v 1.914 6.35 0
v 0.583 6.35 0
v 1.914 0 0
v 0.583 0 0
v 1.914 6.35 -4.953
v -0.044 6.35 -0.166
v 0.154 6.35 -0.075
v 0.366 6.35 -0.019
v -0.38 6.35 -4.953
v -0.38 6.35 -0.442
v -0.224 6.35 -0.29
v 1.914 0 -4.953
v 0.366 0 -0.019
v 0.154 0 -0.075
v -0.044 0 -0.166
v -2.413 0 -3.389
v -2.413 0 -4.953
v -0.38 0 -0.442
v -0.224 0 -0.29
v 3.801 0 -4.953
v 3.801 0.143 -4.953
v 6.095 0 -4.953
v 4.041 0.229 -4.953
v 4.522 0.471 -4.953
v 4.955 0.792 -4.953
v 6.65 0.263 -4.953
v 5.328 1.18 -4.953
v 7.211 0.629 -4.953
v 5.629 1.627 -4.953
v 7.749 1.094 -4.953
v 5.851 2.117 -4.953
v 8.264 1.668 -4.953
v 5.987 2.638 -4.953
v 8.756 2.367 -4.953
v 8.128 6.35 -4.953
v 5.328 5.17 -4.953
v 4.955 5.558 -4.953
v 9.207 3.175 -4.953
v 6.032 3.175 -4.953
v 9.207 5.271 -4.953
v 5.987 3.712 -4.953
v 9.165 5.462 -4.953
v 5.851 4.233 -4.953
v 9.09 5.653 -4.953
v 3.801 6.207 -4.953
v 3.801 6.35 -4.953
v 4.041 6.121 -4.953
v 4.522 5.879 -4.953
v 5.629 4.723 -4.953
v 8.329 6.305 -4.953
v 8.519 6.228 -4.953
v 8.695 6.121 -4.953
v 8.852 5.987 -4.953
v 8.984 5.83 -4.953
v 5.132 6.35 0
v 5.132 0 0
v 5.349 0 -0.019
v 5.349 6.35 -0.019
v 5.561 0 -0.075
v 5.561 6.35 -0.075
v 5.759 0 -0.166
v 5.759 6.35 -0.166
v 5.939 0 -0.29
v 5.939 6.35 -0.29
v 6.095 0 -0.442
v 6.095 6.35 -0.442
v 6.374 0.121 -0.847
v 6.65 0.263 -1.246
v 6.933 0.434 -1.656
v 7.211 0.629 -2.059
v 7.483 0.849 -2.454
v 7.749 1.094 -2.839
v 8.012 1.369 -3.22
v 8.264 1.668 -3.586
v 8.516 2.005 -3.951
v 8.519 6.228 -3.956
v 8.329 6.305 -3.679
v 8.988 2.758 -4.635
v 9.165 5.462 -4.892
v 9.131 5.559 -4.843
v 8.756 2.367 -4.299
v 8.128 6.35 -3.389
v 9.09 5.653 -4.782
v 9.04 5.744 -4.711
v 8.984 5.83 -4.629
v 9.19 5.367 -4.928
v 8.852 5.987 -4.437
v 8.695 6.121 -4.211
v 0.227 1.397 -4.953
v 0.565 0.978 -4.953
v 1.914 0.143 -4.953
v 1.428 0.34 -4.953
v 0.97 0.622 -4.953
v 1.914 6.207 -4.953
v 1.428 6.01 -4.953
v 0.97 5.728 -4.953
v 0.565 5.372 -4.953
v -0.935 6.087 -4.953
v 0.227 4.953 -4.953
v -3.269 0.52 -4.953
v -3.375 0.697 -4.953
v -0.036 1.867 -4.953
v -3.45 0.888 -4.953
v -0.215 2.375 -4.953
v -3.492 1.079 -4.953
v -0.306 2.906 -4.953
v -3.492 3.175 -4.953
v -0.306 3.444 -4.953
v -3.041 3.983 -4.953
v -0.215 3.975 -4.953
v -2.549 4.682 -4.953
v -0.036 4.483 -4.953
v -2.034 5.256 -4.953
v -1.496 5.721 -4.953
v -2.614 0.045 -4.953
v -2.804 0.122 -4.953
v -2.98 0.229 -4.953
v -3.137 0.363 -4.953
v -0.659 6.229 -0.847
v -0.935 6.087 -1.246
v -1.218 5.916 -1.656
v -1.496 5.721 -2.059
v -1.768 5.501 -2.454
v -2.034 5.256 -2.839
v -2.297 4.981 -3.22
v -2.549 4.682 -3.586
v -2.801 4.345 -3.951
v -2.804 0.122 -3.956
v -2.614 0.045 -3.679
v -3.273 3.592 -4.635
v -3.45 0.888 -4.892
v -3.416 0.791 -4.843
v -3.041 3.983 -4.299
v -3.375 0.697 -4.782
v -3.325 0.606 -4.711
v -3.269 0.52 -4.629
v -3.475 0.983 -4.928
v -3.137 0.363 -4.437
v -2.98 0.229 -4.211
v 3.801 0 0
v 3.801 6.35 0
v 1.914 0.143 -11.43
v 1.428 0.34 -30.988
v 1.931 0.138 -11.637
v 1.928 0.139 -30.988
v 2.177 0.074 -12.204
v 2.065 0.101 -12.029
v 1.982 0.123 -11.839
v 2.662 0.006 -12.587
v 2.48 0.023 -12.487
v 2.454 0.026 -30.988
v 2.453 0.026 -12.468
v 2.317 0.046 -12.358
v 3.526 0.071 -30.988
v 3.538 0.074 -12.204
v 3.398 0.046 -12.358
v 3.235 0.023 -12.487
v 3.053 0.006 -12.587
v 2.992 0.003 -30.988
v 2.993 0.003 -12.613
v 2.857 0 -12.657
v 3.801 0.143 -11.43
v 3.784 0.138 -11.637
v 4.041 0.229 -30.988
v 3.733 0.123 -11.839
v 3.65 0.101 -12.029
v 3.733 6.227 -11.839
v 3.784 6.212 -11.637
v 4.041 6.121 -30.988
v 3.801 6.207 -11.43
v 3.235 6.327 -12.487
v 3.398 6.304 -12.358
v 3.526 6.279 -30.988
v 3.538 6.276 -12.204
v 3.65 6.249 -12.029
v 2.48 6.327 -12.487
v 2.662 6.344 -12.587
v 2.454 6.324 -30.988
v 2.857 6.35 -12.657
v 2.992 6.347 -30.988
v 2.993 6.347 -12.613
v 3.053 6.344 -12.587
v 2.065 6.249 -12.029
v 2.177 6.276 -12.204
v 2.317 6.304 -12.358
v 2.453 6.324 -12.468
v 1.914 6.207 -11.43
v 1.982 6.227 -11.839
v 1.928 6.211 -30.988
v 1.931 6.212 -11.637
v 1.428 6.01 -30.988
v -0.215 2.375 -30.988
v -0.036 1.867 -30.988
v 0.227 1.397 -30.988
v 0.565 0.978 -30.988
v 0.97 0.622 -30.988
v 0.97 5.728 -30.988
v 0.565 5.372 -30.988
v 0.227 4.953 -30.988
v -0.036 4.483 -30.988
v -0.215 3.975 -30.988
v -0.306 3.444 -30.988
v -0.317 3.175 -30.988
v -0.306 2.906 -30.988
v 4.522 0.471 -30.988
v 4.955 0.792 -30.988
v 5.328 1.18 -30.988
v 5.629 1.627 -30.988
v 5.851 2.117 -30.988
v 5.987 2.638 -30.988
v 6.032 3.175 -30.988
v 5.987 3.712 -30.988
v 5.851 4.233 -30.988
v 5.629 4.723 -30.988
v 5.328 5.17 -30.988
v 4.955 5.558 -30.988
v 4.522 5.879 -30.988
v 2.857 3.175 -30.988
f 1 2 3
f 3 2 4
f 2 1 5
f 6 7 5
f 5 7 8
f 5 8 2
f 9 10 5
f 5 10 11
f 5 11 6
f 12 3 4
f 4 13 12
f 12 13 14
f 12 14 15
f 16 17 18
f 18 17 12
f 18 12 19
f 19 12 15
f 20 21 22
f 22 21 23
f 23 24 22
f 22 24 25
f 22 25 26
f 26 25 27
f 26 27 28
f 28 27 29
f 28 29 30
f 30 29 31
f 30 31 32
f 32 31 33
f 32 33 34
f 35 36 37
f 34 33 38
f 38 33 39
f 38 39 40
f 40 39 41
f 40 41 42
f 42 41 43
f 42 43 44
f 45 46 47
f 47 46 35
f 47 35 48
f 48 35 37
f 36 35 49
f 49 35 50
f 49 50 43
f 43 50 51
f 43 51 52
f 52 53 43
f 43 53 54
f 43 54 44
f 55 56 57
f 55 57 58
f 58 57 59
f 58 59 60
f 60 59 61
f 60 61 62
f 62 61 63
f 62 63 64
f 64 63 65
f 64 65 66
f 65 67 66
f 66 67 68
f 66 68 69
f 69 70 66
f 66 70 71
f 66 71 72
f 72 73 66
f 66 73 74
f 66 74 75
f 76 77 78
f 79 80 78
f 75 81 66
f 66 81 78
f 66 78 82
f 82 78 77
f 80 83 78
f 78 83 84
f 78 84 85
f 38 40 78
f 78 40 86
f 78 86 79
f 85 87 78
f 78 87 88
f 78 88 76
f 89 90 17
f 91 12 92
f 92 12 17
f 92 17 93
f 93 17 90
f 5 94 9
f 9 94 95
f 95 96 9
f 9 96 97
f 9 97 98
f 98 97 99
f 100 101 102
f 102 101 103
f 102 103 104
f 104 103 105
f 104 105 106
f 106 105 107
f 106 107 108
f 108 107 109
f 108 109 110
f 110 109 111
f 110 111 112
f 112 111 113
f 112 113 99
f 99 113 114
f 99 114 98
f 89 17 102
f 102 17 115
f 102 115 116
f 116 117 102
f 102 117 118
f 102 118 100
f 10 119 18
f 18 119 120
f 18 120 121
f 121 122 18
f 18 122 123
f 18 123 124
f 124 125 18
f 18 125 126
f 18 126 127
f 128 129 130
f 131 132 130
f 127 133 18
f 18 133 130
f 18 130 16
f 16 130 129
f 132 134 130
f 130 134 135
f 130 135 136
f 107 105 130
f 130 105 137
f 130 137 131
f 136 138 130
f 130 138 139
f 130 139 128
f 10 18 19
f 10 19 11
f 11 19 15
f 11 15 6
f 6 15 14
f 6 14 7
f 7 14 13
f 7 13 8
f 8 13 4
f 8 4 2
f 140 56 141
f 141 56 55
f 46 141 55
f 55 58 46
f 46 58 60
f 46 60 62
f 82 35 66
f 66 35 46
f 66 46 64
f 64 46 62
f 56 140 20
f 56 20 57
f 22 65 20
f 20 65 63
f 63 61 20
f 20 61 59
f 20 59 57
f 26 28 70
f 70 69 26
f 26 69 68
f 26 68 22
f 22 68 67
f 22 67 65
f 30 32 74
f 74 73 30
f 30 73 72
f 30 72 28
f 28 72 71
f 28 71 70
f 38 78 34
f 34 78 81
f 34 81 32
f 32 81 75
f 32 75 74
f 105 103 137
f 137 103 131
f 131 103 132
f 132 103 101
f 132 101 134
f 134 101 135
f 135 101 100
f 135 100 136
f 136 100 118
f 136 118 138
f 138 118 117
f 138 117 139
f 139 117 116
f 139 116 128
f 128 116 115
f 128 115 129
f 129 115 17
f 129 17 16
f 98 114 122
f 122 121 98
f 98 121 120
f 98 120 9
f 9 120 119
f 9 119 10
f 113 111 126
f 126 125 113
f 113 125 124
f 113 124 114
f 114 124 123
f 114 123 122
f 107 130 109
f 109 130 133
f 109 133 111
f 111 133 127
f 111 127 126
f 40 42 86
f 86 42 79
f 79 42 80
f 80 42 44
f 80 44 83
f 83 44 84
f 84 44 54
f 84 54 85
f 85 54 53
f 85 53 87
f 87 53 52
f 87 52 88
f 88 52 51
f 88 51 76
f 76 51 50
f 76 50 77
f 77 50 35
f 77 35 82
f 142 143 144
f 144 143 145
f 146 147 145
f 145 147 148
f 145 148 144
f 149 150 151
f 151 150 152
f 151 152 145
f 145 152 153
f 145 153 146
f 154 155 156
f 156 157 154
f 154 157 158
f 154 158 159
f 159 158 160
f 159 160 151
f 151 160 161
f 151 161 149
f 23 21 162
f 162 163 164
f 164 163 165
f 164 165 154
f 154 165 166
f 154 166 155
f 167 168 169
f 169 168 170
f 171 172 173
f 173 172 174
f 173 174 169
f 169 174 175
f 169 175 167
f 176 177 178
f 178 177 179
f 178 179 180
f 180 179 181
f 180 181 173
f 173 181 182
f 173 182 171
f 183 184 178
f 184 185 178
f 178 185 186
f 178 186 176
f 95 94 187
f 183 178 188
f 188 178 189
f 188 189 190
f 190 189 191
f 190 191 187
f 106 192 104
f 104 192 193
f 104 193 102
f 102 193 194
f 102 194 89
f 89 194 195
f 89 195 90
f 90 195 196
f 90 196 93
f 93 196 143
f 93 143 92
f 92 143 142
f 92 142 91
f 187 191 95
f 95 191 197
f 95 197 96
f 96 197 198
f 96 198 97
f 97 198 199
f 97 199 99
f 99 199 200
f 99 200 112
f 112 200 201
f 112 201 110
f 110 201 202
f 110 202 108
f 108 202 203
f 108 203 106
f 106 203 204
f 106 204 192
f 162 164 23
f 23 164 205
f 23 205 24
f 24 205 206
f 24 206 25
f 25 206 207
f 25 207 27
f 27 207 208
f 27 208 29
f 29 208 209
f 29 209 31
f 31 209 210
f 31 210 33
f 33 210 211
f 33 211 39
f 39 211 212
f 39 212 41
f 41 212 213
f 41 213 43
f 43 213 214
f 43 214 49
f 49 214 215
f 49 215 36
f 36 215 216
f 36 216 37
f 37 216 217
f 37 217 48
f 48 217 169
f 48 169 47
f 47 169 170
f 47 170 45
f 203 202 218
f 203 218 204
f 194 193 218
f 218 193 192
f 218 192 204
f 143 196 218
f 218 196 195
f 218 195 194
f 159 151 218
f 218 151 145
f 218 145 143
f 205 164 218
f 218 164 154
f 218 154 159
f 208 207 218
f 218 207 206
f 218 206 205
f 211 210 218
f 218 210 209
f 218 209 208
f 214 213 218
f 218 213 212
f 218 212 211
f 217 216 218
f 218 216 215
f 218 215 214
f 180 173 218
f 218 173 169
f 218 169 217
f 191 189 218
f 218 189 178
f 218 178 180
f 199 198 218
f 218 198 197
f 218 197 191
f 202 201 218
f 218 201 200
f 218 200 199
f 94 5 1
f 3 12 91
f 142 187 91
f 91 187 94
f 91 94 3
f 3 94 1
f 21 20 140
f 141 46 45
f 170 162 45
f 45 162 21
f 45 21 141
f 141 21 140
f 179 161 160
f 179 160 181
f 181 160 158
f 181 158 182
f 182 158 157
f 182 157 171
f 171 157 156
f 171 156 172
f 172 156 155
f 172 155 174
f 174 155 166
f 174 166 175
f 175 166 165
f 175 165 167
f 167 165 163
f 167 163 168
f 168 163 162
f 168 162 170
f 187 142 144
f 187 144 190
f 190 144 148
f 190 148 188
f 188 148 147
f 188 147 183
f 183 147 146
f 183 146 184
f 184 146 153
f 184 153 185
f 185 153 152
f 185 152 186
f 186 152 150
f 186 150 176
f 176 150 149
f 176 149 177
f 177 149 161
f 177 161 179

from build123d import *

# Parameters (mm, degrees)
BOSS_EXTRUDE1_DEPTH = 6.35
CUT_EXTRUDE3_DEPTH  = 4.953
SKETCH7_W           = 6.35
SKETCH7_H           = 6.35
CUT_EXTRUDE5_DEPTH  = 2.159
SKETCH9_R           = 3.175
BOSS_EXTRUDE4_DEPTH = 26.035
CUT_EXTRUDE6_REACH  = 34.945
SKETCH10_W          = 1.886216022
SKETCH10_H          = 12.7
FILLET1_R           = 1.27


with BuildPart() as part:
    # Sketch1 → Boss-Extrude1 (new body)
    with BuildSketch(Plane(origin=(0, 0, 0), x_dir=(1, 0, 0), z_dir=(0, 1, 0))):
        with BuildLine():
            Line((0.583306021, 0), (5.131693979, 0))
            ThreePointArc((5.131693979, 0), (5.661763503, 0.115908886), (6.095077487, 0.442478269))
            Line((6.095077487, 0.442478269), (9.2075, 4.953))
            Line((9.2075, 4.953), (6.0325, 4.953))
            Line((6.0325, 4.953), (6.0325, 7.112))
            Line((6.0325, 7.112), (-0.3175, 7.112))
            Line((-0.3175, 7.112), (-0.3175, 4.953))
            Line((-0.3175, 4.953), (-3.4925, 4.953))
            Line((-3.4925, 4.953), (-0.380077487, 0.442478269))
            ThreePointArc((-0.380077487, 0.442478269), (0.053236497, 0.115908886), (0.583306021, 0))
        make_face()
    extrude(amount=BOSS_EXTRUDE1_DEPTH)

    # Sketch5 → Cut-Extrude3 (cut)
    with BuildSketch(Plane.XY):
        with BuildLine():
            Line((-3.4925, 3.175), (-3.4925, 6.35))
            Line((-3.4925, 6.35), (-0.380077487, 6.35))
            add(Edge.make_bspline(
                [(-3.4925, 3.175), (-2.286021044, 5.595085513), (-0.380077487, 6.35)],
                knots=[0, 0, 0, 0.524463315, 0.524463315, 0.524463315], degree=2))
        make_face()
        with BuildLine():
            Line((6.095077487, 0), (9.2075, 0))
            Line((9.2075, 0), (9.2075, 3.175))
            add(Edge.make_bspline(
                [(9.2075, 3.175), (8.001021011, 0.754914499), (6.095077487, 0)],
                knots=[0, 0, 0, 0.524463308, 0.524463308, 0.524463308], degree=2))
        make_face()
        with BuildLine():
            Line((9.2075, 6.35), (9.2075, 5.2705))
            ThreePointArc((9.2075, 5.2705), (8.848057048, 5.990557048), (8.128, 6.35))
            Line((8.128, 6.35), (9.2075, 6.35))
        make_face()
        with BuildLine():
            Line((-3.4925, 0), (-2.413, 0))
            ThreePointArc((-2.413, 0), (-3.133057048, 0.359442952), (-3.4925, 1.0795))
            Line((-3.4925, 1.0795), (-3.4925, 0))
        make_face()
    extrude(amount=-CUT_EXTRUDE3_DEPTH, mode=Mode.SUBTRACT)

    # Sketch7 → Cut-Extrude5 (cut)
    with BuildSketch(Plane(origin=(0, 0, -7.112), x_dir=(-1, 0, 0), z_dir=(0, 0, -1))):
        with Locations((-2.8575, 3.175)):
            Rectangle(SKETCH7_W, SKETCH7_H)
    extrude(amount=-CUT_EXTRUDE5_DEPTH, mode=Mode.SUBTRACT)

    # Sketch9 → Boss-Extrude4 (add)
    with BuildSketch(Plane(origin=(0, 0, -4.953), x_dir=(-1, 0, 0), z_dir=(0, 0, -1))):
        with Locations(Location((-2.8575, 3.175, 0), (0, 0, 270))):
            Circle(SKETCH9_R)
    extrude(amount=BOSS_EXTRUDE4_DEPTH)

    # Cut-Extrude6: up to this face of the body (flat: up to its plane)
    cut_extrude6_end = Plane(part.part.faces().sort_by_distance((2.192673253, 0, -2.628972318))[0])
    # Sketch10 → Cut-Extrude6 (cut, up to the picked face)
    with BuildSketch(Plane(origin=(0, 6.35, 0), x_dir=(1, 0, 0), z_dir=(0, 1, 0)), mode=Mode.PRIVATE) as cut_extrude6_sk1:
        with Locations((2.8575, 6.35)):
            Rectangle(SKETCH10_W, SKETCH10_H)
    cut_extrude6_tool1 = split(extrude(cut_extrude6_sk1.sketch, amount=-CUT_EXTRUDE6_REACH, mode=Mode.PRIVATE), bisect_by=cut_extrude6_end, keep=Keep.BOTH, mode=Mode.PRIVATE)
    add(cut_extrude6_tool1.solids().sort_by(Axis((2.8575, 6.35, -6.35), (0, -1, 0)))[0], mode=Mode.SUBTRACT)

    # Fillet1
    # the kernel refuses this fillet: 1.27 mm, written as the material it adds along each edge
    with BuildSketch(Plane(origin=(1.914391989, 9.381694622, -12.7), x_dir=(1, 0, 0), z_dir=(0, -1, 0))) as fillet1_piece_1_section:
        with BuildLine():
            CenterArc((FILLET1_R, FILLET1_R), FILLET1_R, 180, 90)
            Line((0, FILLET1_R), (0, 0))
            Line((0, 0), (FILLET1_R, 0))
        make_face()
    fillet1_piece_1 = extrude(amount=12.413389243, mode=Mode.PRIVATE)
    fillet1_piece_1 = fillet1_piece_1 & Plane(origin=(2.8575, 3.175, -12.415110082), x_dir=(0, -1, 0), z_dir=(0, 0, 1)) * Cylinder(3.175, 30, mode=Mode.PRIVATE)
    add(fillet1_piece_1)
    with BuildSketch(Plane(origin=(3.800608011, 9.381694622, -12.7), x_dir=(0, 0, 1), z_dir=(0, -1, 0))) as fillet1_piece_2_section:
        with BuildLine():
            CenterArc((FILLET1_R, FILLET1_R), FILLET1_R, 180, 90)
            Line((0, FILLET1_R), (0, 0))
            Line((0, 0), (FILLET1_R, 0))
        make_face()
    fillet1_piece_2 = extrude(amount=12.413389243, mode=Mode.PRIVATE)
    fillet1_piece_2 = fillet1_piece_2 & Plane(origin=(2.8575, 3.175, -12.415110016), x_dir=(0, -1, 0), z_dir=(0, 0, 1)) * Cylinder(3.175, 30, mode=Mode.PRIVATE)
    add(fillet1_piece_2)


solid = part.part
